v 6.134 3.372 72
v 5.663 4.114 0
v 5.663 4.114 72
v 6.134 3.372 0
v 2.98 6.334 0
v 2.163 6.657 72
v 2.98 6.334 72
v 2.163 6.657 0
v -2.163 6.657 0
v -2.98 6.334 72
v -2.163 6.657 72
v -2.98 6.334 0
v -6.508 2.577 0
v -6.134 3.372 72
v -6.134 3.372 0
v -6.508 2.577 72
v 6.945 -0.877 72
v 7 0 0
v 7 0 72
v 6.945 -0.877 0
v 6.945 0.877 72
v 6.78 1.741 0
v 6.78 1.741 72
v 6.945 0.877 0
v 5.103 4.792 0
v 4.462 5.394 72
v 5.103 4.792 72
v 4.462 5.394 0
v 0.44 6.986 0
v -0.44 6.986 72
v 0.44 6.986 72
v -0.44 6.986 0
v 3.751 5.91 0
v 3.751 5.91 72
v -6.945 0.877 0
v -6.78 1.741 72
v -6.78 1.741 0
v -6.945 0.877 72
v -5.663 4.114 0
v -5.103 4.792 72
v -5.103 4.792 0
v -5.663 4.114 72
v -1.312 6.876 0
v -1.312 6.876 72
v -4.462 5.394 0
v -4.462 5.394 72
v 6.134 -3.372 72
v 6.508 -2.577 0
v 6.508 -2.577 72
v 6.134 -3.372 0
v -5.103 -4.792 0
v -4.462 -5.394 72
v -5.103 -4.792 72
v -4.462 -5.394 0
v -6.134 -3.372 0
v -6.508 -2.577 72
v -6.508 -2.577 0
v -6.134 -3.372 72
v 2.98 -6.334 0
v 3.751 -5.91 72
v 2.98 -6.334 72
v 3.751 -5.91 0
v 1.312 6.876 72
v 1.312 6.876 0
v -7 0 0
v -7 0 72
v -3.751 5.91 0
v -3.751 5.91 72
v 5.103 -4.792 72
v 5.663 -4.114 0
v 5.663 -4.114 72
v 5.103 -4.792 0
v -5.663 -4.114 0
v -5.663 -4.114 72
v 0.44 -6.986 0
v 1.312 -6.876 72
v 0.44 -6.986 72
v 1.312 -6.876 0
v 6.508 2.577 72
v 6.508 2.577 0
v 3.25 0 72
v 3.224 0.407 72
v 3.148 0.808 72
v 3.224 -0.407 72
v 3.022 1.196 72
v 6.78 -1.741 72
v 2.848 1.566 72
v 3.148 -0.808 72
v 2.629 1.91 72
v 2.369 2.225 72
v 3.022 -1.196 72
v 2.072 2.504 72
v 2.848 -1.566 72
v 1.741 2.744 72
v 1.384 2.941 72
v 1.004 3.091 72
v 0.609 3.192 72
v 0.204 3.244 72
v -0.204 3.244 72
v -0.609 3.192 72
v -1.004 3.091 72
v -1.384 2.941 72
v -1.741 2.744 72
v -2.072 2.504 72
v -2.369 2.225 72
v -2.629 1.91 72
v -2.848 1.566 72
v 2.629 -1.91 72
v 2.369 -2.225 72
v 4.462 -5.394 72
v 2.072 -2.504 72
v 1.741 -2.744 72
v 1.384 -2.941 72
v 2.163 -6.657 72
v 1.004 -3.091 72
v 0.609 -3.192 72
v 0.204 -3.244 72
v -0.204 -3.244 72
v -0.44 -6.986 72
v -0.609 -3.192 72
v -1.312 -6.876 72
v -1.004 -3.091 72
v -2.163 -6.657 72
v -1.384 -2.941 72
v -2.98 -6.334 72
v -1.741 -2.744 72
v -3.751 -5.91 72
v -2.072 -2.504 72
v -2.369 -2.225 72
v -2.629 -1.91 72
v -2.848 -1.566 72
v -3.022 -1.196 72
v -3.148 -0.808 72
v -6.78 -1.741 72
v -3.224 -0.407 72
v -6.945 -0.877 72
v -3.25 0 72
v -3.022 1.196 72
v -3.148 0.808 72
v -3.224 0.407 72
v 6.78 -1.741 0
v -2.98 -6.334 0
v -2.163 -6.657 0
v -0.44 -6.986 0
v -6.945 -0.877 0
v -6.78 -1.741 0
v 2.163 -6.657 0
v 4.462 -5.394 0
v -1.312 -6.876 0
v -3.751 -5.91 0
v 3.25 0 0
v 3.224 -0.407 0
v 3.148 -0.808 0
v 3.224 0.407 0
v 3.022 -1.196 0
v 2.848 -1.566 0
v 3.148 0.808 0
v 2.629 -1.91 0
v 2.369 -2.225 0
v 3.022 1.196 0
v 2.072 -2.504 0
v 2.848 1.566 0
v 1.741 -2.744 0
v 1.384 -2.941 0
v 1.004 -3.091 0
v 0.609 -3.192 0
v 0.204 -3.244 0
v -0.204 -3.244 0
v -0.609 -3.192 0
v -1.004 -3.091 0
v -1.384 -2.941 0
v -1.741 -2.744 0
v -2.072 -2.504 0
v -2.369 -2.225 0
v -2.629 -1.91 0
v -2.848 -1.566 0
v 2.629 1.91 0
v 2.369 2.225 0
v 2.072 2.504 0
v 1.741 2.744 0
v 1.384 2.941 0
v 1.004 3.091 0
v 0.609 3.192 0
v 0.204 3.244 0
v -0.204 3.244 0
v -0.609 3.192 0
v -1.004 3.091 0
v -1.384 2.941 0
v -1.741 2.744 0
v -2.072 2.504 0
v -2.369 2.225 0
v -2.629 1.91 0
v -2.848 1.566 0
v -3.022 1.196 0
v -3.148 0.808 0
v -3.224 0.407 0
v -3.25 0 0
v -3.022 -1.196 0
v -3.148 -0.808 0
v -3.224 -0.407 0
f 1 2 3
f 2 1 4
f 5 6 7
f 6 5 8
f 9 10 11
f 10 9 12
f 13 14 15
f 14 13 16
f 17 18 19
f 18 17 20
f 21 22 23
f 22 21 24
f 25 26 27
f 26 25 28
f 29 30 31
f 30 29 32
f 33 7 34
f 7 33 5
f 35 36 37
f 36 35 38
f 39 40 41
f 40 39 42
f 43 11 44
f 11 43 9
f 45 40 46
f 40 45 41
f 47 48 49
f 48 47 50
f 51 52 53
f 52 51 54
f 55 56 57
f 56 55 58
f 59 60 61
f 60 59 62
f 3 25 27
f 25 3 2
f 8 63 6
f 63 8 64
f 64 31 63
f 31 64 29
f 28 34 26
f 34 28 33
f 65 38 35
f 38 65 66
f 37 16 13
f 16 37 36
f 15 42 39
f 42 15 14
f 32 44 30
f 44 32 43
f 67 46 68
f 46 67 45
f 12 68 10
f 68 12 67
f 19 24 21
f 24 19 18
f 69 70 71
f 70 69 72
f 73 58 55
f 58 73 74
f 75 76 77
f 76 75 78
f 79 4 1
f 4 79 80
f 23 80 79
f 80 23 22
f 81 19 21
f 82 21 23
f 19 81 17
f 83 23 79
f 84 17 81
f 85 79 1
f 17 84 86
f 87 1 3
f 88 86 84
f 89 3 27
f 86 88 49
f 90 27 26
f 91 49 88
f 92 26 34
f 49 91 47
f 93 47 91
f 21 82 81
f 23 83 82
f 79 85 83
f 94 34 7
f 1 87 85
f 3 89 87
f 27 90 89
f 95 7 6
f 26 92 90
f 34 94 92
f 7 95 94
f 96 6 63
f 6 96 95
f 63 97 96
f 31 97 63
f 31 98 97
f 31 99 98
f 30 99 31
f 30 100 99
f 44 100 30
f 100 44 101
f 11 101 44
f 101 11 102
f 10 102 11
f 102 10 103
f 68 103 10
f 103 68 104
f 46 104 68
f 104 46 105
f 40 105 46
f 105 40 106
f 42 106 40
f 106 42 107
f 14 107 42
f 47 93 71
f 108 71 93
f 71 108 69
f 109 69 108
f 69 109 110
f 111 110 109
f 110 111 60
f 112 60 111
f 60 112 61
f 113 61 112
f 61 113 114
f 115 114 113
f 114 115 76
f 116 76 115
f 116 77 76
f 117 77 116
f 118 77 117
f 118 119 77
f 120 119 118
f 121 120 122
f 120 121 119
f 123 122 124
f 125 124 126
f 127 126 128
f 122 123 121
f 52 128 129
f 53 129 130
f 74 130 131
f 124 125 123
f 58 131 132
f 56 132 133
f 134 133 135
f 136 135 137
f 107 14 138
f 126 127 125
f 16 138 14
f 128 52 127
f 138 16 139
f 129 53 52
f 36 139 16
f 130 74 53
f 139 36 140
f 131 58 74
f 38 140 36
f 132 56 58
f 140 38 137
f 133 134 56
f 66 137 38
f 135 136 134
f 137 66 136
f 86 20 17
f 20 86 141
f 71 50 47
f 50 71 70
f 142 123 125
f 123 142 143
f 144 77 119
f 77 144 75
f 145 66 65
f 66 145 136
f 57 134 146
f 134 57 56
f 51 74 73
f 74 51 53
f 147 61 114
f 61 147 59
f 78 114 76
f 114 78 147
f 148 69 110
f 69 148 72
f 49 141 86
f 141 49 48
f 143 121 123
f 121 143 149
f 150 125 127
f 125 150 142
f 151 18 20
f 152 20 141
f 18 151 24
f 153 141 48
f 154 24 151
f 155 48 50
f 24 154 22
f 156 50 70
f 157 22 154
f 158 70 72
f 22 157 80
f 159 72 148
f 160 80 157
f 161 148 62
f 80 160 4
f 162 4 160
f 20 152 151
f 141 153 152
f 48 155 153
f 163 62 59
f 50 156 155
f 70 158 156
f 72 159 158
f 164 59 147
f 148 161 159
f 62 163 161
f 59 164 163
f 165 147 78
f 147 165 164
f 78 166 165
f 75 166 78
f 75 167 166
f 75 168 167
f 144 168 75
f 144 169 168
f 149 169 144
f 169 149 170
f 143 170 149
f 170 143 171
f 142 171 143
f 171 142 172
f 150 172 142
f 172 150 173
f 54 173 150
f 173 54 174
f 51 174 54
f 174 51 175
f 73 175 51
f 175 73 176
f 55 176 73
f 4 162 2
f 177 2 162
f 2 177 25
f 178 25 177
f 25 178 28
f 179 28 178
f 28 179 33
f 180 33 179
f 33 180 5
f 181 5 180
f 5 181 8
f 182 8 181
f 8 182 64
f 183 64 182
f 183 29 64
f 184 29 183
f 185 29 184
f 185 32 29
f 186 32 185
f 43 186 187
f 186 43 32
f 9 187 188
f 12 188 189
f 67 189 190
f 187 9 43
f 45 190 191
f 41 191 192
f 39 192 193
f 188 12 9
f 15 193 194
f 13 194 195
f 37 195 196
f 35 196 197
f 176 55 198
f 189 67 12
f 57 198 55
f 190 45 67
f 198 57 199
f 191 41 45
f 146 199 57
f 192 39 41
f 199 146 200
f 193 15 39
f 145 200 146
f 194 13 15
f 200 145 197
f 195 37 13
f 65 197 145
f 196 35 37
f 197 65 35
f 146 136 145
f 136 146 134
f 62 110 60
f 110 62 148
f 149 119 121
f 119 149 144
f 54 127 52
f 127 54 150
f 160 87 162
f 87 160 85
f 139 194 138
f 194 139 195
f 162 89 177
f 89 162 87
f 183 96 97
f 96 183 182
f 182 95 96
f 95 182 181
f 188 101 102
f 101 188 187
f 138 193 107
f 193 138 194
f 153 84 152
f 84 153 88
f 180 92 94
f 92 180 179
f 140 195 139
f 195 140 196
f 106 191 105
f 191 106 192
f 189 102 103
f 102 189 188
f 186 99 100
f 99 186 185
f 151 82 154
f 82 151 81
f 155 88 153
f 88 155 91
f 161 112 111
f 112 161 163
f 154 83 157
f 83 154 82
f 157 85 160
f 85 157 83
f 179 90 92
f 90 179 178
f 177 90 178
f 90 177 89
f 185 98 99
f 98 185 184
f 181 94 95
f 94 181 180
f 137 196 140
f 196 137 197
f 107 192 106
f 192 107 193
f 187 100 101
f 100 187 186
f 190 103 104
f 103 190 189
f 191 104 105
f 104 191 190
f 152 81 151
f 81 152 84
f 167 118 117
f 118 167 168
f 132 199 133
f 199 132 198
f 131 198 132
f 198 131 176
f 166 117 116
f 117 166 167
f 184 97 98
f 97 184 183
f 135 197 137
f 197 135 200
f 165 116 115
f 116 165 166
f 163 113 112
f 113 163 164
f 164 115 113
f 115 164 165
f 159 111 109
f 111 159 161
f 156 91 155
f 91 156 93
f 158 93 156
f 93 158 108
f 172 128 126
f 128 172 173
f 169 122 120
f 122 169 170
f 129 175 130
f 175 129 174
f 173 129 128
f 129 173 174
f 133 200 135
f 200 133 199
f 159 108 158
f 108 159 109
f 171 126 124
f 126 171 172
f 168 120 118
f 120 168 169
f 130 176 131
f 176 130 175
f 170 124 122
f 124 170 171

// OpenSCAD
$fn = 50;


difference() {
	union() {
		cylinder(h = 72, r = 7.0000000000);
	}
	union() {
		translate(v = [0.0000000000, 0.0000000000, -100.0000000000]) {
			cylinder(h = 200, r = 3.2500000000);
		}
	}
}
